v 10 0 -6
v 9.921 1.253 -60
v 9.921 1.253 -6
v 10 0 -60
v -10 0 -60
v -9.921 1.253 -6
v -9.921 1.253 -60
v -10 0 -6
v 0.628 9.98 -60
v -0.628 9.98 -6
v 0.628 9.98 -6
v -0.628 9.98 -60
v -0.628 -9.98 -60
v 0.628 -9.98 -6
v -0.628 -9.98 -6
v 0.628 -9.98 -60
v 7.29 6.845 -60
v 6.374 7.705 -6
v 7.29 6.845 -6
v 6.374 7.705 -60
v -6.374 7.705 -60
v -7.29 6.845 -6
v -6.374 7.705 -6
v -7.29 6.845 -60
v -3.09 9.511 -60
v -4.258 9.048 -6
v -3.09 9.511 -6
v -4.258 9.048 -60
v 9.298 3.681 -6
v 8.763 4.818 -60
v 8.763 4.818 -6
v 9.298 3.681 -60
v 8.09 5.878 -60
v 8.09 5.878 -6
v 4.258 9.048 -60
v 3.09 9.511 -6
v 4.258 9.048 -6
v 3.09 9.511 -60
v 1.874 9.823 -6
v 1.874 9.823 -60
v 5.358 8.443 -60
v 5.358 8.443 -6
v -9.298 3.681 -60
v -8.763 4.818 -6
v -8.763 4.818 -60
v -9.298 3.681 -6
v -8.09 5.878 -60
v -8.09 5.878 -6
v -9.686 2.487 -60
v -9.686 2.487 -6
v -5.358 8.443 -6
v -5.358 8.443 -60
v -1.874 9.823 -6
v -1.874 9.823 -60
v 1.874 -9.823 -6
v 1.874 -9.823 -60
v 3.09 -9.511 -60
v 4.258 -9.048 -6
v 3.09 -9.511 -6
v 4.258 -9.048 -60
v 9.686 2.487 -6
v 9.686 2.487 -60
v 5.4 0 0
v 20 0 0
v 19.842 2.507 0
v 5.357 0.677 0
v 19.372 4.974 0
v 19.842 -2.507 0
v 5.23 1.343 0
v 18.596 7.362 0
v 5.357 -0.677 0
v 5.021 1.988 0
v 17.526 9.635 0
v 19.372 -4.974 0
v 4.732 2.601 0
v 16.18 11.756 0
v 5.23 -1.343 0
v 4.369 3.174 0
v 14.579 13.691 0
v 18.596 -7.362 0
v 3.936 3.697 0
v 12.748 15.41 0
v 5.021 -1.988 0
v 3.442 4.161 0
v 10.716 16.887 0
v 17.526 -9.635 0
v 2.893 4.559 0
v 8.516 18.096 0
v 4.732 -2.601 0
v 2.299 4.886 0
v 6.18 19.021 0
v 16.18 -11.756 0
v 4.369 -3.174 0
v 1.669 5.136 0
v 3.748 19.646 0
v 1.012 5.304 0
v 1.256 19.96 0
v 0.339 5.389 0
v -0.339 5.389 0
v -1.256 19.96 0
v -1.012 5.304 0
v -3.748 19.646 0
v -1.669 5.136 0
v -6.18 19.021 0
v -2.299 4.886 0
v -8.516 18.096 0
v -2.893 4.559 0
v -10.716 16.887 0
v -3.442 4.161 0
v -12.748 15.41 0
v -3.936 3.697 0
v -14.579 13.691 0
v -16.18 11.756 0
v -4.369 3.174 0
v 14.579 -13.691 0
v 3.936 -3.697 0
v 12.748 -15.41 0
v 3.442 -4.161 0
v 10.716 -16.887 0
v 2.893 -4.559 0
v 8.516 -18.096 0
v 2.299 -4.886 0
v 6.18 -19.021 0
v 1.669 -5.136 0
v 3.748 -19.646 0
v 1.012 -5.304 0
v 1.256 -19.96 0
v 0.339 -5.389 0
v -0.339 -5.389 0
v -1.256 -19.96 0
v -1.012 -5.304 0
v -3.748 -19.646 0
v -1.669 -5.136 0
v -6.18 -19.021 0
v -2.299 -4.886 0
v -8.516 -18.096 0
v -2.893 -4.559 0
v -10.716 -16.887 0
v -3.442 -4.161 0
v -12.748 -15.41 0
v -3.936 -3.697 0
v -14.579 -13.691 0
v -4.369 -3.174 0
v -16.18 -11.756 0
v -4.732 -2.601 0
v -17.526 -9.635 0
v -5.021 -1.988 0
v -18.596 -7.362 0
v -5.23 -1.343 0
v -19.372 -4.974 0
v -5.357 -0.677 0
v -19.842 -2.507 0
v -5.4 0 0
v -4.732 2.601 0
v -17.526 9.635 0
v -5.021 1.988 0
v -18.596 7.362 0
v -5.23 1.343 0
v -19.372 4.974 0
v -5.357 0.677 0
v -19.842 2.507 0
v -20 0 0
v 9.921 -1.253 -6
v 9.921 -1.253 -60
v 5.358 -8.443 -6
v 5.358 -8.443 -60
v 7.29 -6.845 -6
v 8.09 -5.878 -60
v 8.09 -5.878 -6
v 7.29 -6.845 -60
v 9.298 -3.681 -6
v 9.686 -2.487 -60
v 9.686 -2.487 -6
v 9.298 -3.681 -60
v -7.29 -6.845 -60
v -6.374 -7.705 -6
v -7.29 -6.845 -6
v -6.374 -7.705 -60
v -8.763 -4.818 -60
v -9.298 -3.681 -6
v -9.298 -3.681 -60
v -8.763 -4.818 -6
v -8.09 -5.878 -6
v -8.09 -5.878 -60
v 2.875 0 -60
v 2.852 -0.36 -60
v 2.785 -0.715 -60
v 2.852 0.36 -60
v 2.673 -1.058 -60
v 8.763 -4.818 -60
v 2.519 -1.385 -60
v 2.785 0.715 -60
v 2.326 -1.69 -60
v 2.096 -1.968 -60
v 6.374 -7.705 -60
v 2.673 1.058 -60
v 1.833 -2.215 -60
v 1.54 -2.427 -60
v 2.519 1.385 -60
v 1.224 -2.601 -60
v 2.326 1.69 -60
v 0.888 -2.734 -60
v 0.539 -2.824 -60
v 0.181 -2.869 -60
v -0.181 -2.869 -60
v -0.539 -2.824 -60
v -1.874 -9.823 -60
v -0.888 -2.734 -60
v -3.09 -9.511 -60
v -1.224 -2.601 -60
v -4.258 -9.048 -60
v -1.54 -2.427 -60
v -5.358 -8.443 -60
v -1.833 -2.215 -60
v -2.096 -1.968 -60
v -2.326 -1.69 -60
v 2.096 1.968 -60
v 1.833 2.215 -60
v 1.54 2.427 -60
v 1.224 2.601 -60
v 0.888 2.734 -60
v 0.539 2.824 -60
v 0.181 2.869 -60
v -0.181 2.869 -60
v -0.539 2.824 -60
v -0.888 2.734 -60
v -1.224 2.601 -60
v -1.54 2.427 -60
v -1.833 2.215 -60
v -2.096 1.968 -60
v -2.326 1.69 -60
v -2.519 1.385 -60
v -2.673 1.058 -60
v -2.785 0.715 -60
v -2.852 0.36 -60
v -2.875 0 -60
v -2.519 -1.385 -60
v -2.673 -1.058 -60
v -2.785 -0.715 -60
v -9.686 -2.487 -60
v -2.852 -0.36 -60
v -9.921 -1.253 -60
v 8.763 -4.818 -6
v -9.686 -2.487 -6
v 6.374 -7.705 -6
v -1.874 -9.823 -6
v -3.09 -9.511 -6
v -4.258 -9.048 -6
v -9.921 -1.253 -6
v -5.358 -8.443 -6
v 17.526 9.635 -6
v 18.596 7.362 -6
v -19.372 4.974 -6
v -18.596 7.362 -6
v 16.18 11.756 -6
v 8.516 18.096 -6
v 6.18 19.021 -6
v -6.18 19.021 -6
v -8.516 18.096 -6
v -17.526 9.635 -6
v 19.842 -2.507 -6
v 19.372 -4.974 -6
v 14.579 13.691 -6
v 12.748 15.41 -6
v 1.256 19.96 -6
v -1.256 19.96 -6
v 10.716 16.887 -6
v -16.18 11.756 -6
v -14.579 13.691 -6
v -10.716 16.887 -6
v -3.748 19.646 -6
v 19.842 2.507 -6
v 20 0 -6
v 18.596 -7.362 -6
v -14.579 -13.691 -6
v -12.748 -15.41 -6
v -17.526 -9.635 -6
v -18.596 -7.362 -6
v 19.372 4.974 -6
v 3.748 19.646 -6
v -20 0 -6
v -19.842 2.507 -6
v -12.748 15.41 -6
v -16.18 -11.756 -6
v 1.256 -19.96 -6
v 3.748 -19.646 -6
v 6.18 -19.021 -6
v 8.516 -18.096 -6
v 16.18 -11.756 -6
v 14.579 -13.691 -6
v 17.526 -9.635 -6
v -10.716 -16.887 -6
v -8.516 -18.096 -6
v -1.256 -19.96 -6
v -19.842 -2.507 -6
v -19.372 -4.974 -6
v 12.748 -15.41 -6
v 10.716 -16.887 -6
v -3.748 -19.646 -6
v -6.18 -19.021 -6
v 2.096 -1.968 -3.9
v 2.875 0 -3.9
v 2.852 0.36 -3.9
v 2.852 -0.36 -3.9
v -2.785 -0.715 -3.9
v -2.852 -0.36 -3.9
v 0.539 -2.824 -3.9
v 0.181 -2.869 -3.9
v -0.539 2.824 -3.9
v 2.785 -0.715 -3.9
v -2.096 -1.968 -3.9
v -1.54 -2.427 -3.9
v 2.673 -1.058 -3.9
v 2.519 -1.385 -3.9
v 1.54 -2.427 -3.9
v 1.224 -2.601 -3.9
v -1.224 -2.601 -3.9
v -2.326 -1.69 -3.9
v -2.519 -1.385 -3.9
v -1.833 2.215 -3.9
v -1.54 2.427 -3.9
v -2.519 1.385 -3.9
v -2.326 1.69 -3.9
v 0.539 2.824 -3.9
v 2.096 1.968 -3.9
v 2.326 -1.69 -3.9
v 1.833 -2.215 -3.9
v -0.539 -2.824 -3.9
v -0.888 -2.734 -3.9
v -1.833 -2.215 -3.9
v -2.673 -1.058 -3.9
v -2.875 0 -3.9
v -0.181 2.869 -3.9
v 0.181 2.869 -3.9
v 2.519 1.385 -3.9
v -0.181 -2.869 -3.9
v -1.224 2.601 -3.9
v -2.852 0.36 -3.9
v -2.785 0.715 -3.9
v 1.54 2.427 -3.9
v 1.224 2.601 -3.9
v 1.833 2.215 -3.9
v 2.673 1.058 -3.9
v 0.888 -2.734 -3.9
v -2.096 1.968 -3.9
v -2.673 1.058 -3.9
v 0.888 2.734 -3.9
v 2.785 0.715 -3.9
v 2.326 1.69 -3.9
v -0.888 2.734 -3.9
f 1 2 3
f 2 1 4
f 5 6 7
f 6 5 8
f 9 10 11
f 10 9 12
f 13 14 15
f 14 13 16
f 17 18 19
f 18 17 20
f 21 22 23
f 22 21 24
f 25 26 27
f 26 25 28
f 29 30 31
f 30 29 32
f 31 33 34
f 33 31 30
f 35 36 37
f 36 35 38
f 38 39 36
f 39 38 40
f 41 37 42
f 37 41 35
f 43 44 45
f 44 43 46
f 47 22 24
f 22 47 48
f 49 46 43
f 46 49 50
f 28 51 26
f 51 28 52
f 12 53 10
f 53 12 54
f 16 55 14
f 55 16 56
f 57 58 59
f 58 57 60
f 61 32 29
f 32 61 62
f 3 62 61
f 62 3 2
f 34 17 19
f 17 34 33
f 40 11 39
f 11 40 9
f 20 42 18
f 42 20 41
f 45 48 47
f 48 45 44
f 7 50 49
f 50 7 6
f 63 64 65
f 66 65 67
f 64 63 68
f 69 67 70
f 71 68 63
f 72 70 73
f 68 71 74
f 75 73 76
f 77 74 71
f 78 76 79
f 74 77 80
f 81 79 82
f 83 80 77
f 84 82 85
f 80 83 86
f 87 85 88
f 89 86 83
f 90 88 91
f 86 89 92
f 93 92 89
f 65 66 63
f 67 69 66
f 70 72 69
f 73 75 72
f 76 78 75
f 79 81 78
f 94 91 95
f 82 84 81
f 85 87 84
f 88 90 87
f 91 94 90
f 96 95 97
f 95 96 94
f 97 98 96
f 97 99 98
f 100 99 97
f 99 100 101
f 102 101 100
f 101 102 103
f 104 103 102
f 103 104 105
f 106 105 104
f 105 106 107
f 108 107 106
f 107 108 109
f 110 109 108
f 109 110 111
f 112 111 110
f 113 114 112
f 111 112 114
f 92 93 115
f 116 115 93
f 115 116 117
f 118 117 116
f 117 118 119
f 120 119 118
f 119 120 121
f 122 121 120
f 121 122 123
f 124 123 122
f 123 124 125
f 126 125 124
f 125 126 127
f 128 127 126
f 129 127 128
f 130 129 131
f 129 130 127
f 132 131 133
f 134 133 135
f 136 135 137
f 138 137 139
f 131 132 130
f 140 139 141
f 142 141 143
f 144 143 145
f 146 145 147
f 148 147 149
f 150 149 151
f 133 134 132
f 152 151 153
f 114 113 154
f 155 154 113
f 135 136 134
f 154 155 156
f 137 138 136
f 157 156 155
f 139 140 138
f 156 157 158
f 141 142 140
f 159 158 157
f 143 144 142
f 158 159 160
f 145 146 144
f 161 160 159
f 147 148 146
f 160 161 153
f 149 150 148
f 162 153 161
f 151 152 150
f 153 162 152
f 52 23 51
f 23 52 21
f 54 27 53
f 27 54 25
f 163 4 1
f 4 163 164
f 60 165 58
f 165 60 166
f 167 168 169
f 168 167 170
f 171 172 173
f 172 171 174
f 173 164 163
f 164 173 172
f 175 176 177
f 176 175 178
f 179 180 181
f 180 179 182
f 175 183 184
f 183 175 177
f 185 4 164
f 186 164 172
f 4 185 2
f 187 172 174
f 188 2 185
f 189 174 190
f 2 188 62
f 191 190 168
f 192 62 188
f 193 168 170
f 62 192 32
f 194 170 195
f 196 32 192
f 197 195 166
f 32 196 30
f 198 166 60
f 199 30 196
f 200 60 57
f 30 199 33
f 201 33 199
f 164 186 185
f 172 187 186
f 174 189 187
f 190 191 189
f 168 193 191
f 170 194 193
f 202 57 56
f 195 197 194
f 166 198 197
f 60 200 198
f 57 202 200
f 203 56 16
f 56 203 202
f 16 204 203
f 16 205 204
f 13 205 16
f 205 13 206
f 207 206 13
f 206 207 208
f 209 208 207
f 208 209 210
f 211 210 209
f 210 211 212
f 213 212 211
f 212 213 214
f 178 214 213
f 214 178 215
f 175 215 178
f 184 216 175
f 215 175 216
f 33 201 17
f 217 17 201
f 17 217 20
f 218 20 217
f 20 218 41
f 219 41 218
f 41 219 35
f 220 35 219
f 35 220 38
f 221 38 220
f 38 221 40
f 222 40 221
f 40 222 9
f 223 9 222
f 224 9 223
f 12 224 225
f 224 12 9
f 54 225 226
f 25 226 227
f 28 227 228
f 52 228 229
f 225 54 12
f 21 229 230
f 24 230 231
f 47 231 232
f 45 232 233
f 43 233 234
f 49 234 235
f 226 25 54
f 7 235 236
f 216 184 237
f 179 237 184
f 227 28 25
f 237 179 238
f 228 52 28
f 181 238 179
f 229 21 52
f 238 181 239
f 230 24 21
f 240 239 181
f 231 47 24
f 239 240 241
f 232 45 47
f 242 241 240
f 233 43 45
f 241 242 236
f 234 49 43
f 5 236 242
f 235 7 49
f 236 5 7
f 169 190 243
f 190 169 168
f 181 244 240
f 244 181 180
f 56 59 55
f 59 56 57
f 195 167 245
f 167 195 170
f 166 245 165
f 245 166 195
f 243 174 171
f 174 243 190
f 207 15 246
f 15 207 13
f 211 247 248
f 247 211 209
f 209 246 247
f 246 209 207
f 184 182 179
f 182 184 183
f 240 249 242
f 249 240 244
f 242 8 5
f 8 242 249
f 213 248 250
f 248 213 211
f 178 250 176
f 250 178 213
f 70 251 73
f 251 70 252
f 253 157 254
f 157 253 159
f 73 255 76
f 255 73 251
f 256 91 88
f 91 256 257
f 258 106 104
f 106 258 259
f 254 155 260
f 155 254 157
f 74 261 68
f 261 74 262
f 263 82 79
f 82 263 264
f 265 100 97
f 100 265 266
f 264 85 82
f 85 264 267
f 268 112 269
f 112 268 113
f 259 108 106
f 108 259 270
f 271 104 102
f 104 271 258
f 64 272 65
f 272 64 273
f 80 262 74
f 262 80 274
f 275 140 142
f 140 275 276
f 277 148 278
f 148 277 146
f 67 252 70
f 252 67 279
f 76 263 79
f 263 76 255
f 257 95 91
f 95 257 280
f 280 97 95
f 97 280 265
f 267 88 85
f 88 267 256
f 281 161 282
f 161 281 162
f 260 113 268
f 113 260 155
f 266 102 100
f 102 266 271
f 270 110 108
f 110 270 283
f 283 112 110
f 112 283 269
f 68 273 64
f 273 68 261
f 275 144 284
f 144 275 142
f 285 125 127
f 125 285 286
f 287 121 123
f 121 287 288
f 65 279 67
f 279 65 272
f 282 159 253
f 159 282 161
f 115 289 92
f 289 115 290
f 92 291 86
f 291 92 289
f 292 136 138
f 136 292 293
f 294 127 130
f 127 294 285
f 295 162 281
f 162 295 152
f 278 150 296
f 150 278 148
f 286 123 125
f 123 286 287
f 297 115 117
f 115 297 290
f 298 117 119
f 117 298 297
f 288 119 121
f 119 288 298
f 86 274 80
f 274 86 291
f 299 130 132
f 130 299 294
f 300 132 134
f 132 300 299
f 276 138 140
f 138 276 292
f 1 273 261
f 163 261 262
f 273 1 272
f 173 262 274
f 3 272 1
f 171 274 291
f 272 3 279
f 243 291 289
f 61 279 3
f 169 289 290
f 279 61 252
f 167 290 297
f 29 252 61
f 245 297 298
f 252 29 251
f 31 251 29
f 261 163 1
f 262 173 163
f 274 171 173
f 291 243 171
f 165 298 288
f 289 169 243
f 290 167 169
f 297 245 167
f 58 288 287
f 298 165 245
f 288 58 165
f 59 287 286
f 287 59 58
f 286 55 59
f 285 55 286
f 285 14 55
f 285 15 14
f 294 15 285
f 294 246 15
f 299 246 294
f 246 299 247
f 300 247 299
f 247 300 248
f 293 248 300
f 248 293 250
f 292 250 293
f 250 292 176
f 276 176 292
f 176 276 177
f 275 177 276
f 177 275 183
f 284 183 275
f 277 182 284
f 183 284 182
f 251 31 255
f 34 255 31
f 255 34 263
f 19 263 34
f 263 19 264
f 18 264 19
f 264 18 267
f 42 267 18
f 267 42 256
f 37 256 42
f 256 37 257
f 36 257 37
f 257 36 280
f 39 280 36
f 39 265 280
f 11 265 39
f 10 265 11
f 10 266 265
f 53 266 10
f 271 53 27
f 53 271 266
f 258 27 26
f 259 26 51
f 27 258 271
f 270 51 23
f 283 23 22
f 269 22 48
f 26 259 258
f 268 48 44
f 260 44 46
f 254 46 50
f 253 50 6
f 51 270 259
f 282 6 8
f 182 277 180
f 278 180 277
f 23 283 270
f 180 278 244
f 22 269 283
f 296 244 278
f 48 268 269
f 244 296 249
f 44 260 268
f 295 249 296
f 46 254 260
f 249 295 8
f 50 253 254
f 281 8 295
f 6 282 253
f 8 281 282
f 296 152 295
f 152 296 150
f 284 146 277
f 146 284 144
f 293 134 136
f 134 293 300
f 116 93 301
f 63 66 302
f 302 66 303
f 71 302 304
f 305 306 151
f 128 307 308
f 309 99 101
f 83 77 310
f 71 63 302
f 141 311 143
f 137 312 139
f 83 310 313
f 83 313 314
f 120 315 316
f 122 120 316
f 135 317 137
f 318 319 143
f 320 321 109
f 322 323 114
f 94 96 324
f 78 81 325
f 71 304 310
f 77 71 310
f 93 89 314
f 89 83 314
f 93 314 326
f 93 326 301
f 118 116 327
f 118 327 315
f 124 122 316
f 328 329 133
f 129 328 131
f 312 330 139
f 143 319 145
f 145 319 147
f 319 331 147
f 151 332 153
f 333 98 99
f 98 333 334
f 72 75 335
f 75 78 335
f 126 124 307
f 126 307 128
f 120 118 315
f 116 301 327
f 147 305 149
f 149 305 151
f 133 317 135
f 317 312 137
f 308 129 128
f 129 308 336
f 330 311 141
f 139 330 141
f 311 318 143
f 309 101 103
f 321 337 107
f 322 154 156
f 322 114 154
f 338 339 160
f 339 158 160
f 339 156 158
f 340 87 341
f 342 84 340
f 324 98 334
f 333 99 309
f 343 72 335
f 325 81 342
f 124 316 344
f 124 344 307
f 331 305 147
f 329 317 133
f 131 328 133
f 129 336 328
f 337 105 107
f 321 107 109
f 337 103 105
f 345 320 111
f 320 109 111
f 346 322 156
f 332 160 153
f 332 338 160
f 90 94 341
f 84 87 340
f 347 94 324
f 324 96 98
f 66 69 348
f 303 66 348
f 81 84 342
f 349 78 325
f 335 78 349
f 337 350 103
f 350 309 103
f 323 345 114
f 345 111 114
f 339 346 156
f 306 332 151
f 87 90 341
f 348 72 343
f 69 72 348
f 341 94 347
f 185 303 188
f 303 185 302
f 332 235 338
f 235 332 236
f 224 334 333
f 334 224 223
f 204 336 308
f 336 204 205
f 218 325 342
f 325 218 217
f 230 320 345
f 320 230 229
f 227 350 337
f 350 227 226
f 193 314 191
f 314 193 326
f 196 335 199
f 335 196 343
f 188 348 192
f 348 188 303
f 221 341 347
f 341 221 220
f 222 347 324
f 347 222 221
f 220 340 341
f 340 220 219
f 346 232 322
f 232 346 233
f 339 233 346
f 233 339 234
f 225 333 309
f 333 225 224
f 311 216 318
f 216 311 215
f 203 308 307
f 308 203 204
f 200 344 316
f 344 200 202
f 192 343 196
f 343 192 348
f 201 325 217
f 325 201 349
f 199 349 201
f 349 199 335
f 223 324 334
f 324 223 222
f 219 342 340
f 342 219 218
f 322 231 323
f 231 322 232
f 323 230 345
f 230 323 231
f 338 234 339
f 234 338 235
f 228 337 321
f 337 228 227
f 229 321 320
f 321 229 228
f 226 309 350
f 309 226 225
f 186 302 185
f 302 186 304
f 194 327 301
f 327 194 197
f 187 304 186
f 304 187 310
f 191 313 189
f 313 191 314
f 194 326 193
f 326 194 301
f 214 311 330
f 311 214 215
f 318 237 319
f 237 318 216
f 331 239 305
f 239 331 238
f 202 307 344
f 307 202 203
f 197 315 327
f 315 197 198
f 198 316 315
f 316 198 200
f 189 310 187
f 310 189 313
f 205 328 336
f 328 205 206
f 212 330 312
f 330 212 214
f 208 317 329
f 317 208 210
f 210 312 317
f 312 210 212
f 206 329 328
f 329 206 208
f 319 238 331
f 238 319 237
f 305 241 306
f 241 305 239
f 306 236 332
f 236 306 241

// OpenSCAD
$fn = 50;


difference() {
	union() {
		translate(v = [0, 0, -60.0000000000]) {
			cylinder(h = 60, r = 10.0000000000);
		}
		translate(v = [0, 0, -6.0000000000]) {
			cylinder(h = 6, r = 20.0000000000);
		}
	}
	union() {
		translate(v = [0, 0, 0]) {
			rotate(a = [0, 0, 0]) {
				difference() {
					union() {
						#translate(v = [0, 0, -60.0000000000]) {
							cylinder(h = 60, r = 2.6000000000);
						}
						#translate(v = [0, 0, -3.9000000000]) {
							cylinder(h = 3.9000000000, r1 = 2.8750000000, r2 = 5.4000000000);
						}
						#translate(v = [0, 0, -60.0000000000]) {
							cylinder(h = 60, r = 2.8750000000);
						}
						#translate(v = [0, 0, -60.0000000000]) {
							cylinder(h = 60, r = 2.6000000000);
						}
					}
					union();
				}
			}
		}
	}
}
